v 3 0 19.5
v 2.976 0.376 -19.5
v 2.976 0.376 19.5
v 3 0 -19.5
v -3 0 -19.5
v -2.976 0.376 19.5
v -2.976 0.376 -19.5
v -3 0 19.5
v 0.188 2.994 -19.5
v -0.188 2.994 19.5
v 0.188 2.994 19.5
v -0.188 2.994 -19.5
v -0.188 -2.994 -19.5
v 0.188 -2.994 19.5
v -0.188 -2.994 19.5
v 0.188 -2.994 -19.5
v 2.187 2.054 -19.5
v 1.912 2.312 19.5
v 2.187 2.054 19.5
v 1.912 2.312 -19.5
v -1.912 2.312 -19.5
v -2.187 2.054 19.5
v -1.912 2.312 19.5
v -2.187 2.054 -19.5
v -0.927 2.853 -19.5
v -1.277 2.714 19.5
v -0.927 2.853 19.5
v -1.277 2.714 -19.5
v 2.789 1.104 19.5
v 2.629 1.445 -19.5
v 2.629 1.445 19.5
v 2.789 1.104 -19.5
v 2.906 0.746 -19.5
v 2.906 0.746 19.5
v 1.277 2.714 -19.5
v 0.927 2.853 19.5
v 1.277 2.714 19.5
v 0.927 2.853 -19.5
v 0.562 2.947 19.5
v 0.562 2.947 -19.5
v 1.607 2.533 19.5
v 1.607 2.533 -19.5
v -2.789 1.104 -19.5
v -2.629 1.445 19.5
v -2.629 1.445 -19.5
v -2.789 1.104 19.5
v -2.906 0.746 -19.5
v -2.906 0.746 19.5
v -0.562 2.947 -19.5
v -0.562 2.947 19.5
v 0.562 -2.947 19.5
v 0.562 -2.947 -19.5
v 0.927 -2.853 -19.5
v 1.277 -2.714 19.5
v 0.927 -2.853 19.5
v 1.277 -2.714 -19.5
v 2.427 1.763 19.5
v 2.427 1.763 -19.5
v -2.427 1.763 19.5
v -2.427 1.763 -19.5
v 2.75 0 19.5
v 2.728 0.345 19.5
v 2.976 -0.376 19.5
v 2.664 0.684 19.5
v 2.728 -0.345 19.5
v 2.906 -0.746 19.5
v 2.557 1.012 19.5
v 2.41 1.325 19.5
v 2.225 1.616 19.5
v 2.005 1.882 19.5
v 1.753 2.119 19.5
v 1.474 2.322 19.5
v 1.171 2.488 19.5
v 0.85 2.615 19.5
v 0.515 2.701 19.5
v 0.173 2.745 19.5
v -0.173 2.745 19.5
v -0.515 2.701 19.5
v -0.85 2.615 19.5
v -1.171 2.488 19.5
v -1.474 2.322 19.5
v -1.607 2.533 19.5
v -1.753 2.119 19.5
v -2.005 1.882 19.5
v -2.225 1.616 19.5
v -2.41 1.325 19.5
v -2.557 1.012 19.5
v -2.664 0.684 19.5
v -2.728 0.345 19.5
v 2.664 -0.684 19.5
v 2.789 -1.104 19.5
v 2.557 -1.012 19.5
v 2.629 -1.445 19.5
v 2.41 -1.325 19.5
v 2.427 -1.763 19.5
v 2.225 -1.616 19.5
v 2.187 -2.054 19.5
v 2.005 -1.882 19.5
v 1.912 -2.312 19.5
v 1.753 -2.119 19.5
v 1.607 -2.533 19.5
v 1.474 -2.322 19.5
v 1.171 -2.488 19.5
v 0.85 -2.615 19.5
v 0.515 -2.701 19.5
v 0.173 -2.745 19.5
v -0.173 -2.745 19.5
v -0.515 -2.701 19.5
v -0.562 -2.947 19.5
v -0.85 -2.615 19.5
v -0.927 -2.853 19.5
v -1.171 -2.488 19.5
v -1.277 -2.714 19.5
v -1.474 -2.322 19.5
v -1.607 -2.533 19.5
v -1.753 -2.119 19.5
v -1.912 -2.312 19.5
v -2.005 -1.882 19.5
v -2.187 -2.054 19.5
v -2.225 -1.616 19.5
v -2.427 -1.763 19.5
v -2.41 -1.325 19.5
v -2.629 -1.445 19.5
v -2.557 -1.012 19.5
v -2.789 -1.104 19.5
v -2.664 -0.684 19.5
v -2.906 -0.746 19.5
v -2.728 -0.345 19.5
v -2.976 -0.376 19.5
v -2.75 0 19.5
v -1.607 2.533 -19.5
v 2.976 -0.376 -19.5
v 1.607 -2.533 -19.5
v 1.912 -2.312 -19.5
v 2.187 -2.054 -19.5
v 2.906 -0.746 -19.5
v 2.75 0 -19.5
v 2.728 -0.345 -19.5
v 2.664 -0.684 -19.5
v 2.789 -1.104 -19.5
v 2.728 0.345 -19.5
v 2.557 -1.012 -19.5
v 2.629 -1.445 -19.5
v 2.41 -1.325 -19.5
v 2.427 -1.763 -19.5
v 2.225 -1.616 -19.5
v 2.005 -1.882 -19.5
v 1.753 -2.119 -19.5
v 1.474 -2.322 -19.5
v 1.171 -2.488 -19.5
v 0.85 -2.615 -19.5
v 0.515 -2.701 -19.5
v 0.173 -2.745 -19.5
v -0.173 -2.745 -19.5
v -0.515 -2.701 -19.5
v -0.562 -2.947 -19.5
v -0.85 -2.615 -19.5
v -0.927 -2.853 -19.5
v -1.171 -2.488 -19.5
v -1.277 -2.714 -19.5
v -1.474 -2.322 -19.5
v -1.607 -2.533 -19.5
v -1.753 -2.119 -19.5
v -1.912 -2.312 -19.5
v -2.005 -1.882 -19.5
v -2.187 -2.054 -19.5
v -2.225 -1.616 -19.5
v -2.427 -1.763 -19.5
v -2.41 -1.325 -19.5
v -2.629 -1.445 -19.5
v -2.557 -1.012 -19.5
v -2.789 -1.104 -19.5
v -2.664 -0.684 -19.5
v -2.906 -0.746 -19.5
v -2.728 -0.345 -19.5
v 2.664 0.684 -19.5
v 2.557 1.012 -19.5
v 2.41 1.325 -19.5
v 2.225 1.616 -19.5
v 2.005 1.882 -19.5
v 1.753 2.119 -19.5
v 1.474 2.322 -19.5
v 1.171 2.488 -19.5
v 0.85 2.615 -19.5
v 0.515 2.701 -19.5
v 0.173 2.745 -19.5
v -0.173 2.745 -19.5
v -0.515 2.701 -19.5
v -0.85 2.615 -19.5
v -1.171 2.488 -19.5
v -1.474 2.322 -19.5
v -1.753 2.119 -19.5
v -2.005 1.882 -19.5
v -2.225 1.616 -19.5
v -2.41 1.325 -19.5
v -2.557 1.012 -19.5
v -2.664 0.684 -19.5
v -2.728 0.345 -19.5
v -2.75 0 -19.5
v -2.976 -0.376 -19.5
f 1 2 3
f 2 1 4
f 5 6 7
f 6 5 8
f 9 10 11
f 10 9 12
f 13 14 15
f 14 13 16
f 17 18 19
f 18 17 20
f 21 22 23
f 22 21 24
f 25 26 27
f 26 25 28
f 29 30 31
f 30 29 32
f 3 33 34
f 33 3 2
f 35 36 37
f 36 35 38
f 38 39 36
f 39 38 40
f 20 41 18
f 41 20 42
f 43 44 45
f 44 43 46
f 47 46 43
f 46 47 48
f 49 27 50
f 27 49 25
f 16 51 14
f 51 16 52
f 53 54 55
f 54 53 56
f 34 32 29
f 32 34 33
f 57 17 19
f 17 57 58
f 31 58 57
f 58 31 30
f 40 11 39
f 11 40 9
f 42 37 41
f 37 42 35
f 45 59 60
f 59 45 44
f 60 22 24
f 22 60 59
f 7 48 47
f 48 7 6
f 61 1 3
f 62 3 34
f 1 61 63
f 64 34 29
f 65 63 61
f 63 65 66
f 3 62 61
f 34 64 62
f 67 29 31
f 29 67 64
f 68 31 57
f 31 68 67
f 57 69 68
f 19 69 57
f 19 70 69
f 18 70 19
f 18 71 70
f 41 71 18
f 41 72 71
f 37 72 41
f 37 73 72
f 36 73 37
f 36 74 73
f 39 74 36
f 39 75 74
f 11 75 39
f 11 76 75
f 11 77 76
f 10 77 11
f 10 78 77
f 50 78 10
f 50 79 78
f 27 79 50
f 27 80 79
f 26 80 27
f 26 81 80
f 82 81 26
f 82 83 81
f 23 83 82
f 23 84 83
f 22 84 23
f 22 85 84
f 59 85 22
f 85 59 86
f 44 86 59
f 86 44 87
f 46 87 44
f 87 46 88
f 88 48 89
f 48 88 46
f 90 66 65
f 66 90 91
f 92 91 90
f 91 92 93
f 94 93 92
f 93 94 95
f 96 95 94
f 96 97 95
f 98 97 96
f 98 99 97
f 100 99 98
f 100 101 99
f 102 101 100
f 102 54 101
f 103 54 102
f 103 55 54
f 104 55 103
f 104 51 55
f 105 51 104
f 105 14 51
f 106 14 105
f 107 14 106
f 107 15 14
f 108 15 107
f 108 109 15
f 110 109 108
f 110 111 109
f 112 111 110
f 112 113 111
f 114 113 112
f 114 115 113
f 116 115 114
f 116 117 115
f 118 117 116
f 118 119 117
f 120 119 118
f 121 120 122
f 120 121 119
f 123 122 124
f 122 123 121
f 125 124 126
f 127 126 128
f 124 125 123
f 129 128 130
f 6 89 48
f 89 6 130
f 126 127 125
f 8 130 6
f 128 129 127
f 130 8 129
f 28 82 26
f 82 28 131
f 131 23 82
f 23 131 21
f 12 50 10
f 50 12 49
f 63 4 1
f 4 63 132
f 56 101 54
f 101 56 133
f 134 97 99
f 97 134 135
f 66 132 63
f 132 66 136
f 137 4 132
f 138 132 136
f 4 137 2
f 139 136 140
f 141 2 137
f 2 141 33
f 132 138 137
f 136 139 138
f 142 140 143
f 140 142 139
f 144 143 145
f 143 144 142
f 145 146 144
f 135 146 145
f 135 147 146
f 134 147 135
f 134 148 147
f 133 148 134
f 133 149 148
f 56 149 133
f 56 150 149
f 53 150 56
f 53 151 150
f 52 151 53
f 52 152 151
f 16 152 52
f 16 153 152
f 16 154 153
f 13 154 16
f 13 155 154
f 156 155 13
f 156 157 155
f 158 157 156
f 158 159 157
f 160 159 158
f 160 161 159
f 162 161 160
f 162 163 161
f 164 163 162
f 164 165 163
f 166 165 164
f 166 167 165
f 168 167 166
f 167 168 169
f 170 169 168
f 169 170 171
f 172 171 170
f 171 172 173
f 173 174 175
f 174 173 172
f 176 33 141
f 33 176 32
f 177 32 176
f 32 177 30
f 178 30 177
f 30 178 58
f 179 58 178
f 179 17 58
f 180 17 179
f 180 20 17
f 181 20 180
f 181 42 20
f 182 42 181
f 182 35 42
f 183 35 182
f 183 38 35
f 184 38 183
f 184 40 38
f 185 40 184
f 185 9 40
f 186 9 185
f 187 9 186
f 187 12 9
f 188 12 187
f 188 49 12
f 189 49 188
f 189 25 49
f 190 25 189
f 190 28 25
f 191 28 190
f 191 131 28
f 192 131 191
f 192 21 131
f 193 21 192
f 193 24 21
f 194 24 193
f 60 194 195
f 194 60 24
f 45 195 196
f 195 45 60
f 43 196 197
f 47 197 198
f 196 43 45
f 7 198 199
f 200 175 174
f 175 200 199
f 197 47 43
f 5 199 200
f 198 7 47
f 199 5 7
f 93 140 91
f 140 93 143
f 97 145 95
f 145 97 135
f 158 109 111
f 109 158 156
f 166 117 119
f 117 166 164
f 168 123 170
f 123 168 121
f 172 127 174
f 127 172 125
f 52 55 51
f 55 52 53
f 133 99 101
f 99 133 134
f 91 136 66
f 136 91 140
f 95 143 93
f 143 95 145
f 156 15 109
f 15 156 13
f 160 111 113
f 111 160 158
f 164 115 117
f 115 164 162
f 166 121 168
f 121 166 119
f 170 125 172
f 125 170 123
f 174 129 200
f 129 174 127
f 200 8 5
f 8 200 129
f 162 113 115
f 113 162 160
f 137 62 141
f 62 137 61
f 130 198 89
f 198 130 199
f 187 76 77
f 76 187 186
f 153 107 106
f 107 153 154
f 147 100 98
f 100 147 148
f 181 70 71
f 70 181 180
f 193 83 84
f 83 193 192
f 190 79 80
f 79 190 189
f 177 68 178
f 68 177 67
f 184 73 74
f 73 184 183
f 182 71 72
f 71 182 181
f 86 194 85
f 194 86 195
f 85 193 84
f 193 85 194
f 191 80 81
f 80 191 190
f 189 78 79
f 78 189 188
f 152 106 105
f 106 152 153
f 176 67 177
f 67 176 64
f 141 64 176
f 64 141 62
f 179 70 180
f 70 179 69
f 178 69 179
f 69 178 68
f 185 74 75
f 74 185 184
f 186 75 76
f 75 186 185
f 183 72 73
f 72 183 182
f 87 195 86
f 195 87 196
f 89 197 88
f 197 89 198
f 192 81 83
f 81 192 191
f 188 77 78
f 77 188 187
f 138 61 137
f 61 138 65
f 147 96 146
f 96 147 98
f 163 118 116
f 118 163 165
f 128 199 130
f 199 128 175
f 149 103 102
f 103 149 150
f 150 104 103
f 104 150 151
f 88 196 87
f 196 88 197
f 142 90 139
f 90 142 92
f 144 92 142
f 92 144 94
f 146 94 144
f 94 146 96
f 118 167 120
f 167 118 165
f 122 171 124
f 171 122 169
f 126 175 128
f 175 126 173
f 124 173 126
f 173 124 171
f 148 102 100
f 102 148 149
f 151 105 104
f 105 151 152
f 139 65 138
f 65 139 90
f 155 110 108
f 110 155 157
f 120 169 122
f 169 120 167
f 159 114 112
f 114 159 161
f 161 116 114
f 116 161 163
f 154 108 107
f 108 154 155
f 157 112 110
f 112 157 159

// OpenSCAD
$fn = 50;


difference() {
	union() {
		translate(v = [0, 0, -19.5000000000]) {
			cylinder(h = 39, r = 3.0000000000);
		}
	}
	union() {
		translate(v = [0, 0, -100.0000000000]) {
			cylinder(h = 200, r = 2.7500000000);
		}
	}
}
